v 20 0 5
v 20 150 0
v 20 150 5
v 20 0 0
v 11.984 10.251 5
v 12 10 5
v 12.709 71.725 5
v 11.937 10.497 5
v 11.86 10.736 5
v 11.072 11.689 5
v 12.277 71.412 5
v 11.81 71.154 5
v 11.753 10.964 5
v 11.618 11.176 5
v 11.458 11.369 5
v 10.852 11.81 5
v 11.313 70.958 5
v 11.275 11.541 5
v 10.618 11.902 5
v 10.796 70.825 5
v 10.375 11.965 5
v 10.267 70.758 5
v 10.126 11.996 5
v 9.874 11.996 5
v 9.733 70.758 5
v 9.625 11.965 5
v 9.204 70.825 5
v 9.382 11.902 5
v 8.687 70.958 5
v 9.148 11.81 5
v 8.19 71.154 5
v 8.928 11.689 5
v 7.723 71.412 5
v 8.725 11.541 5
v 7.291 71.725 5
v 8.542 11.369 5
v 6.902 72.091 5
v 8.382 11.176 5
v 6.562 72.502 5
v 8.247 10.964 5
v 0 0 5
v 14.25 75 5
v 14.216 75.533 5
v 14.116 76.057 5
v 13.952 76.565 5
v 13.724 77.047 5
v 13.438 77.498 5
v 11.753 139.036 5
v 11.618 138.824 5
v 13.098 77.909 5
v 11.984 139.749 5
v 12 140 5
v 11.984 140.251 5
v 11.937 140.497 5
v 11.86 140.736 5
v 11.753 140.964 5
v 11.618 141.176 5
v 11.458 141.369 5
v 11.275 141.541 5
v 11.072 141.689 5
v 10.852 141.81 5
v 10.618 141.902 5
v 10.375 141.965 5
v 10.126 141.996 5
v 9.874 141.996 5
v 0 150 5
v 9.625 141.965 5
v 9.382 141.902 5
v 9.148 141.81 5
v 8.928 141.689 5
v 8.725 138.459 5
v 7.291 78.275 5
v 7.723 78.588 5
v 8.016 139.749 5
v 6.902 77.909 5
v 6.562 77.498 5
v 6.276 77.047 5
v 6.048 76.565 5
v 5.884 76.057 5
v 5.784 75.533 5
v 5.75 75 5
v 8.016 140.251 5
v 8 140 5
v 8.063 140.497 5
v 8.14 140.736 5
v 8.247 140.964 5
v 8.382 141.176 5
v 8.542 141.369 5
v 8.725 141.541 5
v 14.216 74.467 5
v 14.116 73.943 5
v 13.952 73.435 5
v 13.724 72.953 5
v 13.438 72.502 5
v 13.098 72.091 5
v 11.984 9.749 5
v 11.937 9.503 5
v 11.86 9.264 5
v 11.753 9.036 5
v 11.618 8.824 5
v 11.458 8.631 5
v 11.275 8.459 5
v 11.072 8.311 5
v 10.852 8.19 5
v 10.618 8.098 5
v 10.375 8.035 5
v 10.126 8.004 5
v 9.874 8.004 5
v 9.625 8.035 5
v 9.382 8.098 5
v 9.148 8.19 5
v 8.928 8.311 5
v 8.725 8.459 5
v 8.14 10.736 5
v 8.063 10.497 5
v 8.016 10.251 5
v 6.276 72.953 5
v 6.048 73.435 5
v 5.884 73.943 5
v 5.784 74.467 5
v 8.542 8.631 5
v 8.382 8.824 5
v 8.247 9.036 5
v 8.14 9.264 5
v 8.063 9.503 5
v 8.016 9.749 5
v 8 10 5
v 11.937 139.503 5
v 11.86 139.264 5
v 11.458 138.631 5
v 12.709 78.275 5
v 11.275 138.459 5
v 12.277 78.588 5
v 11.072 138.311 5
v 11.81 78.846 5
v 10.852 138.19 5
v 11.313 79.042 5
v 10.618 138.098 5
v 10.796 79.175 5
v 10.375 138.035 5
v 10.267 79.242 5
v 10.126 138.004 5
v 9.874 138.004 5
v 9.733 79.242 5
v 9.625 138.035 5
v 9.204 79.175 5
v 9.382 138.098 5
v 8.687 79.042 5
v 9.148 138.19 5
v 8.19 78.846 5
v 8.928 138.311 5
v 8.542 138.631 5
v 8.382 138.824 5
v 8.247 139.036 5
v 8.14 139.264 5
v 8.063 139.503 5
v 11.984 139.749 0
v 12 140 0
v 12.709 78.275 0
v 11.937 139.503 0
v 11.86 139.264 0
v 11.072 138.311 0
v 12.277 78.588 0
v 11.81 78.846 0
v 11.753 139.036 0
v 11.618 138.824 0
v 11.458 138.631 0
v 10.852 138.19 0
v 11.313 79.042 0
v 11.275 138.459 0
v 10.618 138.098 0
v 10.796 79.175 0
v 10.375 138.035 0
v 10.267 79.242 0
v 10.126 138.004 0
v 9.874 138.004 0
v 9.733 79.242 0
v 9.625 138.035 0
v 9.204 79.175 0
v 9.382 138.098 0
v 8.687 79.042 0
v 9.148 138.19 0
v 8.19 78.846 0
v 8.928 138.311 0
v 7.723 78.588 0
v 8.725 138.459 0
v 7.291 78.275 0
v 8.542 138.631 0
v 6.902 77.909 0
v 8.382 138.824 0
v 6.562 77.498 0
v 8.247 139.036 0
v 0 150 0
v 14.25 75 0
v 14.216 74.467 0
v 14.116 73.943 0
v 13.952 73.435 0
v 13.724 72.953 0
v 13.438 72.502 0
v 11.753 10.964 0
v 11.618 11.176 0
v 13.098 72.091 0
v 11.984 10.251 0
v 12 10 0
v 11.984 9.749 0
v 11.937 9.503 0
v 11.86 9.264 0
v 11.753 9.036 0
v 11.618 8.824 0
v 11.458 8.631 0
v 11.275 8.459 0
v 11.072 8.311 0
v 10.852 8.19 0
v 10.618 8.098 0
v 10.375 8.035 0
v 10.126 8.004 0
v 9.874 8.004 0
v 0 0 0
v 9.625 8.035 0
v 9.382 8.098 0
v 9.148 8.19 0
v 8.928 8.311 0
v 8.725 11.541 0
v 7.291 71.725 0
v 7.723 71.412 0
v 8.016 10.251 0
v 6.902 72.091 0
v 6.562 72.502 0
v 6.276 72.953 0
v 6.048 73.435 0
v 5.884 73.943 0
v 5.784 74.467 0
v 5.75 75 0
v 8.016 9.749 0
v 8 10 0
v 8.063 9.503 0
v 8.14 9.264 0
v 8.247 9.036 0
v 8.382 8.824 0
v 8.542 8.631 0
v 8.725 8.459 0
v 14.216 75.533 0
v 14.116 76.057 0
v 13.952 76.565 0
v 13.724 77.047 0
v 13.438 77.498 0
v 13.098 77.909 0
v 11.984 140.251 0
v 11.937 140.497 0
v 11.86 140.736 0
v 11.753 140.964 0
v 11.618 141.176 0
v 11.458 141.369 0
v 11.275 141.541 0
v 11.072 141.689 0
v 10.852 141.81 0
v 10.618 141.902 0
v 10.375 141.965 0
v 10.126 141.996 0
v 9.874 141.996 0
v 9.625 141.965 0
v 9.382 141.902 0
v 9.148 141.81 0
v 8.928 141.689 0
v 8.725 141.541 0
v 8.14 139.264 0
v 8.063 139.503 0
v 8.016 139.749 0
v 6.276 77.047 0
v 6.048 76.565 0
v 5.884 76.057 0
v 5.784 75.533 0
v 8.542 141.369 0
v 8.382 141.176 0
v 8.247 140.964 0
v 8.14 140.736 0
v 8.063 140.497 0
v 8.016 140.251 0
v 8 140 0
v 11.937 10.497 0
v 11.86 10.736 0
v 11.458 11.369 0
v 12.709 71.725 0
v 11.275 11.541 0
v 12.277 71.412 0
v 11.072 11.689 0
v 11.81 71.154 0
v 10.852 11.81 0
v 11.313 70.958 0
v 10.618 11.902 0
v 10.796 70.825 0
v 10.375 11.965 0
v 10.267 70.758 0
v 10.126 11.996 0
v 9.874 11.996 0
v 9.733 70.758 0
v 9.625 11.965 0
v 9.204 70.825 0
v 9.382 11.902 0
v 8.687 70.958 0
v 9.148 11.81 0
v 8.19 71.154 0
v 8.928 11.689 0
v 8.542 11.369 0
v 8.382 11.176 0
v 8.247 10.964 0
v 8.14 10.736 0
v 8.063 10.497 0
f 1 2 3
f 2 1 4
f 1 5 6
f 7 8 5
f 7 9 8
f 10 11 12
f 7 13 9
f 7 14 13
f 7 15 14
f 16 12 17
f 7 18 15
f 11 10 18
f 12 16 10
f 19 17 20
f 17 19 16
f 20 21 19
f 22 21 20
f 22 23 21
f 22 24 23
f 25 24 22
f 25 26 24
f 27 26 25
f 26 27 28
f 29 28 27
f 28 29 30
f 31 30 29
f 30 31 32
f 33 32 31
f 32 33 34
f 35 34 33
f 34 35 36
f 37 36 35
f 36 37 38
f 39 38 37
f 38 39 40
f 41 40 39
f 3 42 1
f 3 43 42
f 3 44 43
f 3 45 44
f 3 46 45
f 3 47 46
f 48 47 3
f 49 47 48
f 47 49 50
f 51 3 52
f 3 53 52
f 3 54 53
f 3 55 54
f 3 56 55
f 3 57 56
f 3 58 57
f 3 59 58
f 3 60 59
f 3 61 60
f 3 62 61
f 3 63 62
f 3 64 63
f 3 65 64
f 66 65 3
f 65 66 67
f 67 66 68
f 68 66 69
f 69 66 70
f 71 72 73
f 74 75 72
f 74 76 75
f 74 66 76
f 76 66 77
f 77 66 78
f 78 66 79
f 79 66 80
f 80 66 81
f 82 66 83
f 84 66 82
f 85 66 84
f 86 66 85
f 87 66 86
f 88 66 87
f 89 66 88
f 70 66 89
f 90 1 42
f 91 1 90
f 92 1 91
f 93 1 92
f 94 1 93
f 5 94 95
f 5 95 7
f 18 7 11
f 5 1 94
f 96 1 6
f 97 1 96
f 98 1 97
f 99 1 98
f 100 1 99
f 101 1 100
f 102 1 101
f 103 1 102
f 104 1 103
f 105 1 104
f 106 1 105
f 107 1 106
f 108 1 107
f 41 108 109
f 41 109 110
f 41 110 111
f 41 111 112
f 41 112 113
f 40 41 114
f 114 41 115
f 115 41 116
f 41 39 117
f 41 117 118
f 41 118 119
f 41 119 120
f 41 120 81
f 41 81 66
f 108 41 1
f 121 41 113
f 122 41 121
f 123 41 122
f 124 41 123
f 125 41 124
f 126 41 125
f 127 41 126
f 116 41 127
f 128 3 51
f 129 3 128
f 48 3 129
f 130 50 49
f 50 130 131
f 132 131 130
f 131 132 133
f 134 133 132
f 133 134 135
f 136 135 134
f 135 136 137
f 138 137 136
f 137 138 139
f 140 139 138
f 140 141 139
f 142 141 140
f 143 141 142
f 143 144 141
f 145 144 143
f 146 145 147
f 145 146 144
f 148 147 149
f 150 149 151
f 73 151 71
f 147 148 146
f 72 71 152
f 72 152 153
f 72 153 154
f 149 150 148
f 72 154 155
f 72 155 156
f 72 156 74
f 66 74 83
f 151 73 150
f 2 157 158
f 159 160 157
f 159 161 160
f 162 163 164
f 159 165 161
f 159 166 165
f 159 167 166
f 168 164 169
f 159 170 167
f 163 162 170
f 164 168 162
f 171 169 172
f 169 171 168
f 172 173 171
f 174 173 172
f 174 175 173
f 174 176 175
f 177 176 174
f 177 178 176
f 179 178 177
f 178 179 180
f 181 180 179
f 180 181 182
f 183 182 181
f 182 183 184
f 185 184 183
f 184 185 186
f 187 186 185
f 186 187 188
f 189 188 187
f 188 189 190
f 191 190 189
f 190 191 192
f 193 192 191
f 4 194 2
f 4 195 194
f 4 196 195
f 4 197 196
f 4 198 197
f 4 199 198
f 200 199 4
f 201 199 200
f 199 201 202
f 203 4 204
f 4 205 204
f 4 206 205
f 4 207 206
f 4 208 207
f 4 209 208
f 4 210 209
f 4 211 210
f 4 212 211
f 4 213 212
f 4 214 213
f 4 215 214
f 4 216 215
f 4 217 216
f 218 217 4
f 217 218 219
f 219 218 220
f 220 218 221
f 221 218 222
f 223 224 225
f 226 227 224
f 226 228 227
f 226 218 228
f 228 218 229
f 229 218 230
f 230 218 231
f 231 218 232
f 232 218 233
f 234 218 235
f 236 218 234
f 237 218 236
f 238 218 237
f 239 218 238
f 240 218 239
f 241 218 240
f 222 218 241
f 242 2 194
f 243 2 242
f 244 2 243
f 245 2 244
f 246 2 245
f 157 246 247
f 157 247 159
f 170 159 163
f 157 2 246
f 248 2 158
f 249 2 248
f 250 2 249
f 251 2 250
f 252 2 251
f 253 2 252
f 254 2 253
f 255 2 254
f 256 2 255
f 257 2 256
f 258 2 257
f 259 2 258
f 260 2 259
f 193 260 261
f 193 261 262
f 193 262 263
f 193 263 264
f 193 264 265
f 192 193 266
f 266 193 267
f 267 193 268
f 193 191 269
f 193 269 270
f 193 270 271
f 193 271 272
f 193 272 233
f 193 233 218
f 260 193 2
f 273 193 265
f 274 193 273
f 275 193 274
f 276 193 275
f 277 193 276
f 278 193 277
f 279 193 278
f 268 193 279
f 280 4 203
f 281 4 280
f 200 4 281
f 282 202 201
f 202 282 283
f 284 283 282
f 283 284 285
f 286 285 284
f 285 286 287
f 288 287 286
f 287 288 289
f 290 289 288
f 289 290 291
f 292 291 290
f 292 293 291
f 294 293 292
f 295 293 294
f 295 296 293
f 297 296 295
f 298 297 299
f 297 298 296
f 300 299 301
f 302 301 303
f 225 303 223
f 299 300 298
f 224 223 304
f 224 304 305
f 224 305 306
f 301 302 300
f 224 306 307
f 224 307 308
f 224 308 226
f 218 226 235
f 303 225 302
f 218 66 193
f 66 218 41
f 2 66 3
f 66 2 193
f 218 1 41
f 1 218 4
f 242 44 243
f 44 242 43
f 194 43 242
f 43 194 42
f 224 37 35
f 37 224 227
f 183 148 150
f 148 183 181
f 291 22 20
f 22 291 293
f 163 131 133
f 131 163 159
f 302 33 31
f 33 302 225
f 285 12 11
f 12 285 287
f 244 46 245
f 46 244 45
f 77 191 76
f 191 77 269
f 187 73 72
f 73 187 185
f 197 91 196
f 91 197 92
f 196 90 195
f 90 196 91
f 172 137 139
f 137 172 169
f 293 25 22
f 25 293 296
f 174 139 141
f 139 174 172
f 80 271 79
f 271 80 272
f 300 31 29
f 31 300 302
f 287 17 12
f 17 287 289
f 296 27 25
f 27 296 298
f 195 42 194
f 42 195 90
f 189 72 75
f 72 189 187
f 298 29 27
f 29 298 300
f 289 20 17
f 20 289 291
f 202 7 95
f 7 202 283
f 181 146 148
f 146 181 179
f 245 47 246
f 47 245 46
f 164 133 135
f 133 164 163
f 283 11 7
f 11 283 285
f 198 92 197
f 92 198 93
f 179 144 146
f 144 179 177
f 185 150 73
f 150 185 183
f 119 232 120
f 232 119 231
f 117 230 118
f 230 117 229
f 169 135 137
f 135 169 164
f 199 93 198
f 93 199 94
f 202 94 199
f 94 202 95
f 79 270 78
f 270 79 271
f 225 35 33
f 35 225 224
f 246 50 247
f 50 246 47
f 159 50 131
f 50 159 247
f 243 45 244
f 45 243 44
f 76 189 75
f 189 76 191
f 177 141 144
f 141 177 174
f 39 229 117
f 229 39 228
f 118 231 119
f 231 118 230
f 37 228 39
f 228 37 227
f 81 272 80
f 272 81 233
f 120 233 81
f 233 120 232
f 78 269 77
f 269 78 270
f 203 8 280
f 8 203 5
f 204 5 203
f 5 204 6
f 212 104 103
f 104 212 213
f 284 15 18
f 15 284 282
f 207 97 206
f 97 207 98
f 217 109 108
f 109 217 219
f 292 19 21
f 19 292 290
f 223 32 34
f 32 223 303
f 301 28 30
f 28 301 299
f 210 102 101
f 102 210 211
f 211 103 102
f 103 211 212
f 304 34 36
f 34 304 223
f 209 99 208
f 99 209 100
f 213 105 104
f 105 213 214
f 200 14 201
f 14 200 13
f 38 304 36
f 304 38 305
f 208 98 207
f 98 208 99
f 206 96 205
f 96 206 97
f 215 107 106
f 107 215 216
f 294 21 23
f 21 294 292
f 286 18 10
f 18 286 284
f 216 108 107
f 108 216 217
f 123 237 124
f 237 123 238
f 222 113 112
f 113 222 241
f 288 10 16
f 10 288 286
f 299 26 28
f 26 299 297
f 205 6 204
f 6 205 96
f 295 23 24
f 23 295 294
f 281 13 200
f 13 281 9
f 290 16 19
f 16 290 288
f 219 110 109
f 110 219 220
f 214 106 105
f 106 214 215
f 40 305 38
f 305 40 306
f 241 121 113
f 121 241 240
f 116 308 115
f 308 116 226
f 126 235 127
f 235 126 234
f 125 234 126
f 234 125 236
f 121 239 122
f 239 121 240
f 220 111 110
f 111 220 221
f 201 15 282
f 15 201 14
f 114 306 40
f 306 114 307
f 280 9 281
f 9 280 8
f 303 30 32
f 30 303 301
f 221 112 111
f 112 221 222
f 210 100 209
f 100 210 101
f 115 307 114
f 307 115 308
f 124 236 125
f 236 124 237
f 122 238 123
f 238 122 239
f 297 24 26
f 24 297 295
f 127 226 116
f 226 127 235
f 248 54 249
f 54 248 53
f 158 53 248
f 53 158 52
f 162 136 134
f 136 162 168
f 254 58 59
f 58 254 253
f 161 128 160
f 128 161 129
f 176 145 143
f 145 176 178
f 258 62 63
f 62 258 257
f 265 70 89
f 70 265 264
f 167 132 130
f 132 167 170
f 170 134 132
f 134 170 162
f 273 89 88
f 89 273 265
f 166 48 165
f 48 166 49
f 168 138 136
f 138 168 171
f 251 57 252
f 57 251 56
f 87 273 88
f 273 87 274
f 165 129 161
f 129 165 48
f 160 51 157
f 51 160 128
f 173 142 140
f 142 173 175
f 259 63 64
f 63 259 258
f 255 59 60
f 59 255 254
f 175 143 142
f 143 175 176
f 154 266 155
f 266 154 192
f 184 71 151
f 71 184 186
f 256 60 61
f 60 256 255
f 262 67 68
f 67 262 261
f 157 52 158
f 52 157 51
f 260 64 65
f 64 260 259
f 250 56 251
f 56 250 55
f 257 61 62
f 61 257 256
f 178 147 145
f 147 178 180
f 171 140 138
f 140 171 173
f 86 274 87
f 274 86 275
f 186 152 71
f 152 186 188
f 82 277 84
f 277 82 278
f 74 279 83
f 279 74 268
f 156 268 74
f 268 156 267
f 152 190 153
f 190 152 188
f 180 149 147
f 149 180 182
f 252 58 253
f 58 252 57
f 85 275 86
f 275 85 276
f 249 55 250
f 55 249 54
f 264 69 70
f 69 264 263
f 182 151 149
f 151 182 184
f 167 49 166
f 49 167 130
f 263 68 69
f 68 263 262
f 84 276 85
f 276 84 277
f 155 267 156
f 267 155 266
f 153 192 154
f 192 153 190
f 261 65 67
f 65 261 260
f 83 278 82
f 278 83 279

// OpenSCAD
/**

Brackets for mounting Eco Worthy 12v 100Ah LiPo4

Licenced as Creative Commons Attribution Non Commercial 3.0
See https://creativecommons.org/licenses/by-nc/3.0/

Specifically you may not sell the design or products using the design.
You're welcome to use the design to build things for your own use :)

**/

x = 20;
y = 150;
z = 5;

hole_bolt = 8.5;
hole_screw = 4;

difference() {
    // Main body
    cube([x, y, z]);
    
    // Bolt hole
    translate([x/2, y/2, 0]) {
        cylinder(h = z*2, d = hole_bolt, center = true, $fn = 50);
    }
    
    // Screw holes
    translate([x/2, x/2, 0]) {
        cylinder(h = z*2, d = hole_screw, center = true, $fn = 50);
    }
    // Screw holes
    translate([x/2, y - (x/2), 0]) {
        cylinder(h = z*2, d = hole_screw, center = true, $fn = 50);
    }   
}
